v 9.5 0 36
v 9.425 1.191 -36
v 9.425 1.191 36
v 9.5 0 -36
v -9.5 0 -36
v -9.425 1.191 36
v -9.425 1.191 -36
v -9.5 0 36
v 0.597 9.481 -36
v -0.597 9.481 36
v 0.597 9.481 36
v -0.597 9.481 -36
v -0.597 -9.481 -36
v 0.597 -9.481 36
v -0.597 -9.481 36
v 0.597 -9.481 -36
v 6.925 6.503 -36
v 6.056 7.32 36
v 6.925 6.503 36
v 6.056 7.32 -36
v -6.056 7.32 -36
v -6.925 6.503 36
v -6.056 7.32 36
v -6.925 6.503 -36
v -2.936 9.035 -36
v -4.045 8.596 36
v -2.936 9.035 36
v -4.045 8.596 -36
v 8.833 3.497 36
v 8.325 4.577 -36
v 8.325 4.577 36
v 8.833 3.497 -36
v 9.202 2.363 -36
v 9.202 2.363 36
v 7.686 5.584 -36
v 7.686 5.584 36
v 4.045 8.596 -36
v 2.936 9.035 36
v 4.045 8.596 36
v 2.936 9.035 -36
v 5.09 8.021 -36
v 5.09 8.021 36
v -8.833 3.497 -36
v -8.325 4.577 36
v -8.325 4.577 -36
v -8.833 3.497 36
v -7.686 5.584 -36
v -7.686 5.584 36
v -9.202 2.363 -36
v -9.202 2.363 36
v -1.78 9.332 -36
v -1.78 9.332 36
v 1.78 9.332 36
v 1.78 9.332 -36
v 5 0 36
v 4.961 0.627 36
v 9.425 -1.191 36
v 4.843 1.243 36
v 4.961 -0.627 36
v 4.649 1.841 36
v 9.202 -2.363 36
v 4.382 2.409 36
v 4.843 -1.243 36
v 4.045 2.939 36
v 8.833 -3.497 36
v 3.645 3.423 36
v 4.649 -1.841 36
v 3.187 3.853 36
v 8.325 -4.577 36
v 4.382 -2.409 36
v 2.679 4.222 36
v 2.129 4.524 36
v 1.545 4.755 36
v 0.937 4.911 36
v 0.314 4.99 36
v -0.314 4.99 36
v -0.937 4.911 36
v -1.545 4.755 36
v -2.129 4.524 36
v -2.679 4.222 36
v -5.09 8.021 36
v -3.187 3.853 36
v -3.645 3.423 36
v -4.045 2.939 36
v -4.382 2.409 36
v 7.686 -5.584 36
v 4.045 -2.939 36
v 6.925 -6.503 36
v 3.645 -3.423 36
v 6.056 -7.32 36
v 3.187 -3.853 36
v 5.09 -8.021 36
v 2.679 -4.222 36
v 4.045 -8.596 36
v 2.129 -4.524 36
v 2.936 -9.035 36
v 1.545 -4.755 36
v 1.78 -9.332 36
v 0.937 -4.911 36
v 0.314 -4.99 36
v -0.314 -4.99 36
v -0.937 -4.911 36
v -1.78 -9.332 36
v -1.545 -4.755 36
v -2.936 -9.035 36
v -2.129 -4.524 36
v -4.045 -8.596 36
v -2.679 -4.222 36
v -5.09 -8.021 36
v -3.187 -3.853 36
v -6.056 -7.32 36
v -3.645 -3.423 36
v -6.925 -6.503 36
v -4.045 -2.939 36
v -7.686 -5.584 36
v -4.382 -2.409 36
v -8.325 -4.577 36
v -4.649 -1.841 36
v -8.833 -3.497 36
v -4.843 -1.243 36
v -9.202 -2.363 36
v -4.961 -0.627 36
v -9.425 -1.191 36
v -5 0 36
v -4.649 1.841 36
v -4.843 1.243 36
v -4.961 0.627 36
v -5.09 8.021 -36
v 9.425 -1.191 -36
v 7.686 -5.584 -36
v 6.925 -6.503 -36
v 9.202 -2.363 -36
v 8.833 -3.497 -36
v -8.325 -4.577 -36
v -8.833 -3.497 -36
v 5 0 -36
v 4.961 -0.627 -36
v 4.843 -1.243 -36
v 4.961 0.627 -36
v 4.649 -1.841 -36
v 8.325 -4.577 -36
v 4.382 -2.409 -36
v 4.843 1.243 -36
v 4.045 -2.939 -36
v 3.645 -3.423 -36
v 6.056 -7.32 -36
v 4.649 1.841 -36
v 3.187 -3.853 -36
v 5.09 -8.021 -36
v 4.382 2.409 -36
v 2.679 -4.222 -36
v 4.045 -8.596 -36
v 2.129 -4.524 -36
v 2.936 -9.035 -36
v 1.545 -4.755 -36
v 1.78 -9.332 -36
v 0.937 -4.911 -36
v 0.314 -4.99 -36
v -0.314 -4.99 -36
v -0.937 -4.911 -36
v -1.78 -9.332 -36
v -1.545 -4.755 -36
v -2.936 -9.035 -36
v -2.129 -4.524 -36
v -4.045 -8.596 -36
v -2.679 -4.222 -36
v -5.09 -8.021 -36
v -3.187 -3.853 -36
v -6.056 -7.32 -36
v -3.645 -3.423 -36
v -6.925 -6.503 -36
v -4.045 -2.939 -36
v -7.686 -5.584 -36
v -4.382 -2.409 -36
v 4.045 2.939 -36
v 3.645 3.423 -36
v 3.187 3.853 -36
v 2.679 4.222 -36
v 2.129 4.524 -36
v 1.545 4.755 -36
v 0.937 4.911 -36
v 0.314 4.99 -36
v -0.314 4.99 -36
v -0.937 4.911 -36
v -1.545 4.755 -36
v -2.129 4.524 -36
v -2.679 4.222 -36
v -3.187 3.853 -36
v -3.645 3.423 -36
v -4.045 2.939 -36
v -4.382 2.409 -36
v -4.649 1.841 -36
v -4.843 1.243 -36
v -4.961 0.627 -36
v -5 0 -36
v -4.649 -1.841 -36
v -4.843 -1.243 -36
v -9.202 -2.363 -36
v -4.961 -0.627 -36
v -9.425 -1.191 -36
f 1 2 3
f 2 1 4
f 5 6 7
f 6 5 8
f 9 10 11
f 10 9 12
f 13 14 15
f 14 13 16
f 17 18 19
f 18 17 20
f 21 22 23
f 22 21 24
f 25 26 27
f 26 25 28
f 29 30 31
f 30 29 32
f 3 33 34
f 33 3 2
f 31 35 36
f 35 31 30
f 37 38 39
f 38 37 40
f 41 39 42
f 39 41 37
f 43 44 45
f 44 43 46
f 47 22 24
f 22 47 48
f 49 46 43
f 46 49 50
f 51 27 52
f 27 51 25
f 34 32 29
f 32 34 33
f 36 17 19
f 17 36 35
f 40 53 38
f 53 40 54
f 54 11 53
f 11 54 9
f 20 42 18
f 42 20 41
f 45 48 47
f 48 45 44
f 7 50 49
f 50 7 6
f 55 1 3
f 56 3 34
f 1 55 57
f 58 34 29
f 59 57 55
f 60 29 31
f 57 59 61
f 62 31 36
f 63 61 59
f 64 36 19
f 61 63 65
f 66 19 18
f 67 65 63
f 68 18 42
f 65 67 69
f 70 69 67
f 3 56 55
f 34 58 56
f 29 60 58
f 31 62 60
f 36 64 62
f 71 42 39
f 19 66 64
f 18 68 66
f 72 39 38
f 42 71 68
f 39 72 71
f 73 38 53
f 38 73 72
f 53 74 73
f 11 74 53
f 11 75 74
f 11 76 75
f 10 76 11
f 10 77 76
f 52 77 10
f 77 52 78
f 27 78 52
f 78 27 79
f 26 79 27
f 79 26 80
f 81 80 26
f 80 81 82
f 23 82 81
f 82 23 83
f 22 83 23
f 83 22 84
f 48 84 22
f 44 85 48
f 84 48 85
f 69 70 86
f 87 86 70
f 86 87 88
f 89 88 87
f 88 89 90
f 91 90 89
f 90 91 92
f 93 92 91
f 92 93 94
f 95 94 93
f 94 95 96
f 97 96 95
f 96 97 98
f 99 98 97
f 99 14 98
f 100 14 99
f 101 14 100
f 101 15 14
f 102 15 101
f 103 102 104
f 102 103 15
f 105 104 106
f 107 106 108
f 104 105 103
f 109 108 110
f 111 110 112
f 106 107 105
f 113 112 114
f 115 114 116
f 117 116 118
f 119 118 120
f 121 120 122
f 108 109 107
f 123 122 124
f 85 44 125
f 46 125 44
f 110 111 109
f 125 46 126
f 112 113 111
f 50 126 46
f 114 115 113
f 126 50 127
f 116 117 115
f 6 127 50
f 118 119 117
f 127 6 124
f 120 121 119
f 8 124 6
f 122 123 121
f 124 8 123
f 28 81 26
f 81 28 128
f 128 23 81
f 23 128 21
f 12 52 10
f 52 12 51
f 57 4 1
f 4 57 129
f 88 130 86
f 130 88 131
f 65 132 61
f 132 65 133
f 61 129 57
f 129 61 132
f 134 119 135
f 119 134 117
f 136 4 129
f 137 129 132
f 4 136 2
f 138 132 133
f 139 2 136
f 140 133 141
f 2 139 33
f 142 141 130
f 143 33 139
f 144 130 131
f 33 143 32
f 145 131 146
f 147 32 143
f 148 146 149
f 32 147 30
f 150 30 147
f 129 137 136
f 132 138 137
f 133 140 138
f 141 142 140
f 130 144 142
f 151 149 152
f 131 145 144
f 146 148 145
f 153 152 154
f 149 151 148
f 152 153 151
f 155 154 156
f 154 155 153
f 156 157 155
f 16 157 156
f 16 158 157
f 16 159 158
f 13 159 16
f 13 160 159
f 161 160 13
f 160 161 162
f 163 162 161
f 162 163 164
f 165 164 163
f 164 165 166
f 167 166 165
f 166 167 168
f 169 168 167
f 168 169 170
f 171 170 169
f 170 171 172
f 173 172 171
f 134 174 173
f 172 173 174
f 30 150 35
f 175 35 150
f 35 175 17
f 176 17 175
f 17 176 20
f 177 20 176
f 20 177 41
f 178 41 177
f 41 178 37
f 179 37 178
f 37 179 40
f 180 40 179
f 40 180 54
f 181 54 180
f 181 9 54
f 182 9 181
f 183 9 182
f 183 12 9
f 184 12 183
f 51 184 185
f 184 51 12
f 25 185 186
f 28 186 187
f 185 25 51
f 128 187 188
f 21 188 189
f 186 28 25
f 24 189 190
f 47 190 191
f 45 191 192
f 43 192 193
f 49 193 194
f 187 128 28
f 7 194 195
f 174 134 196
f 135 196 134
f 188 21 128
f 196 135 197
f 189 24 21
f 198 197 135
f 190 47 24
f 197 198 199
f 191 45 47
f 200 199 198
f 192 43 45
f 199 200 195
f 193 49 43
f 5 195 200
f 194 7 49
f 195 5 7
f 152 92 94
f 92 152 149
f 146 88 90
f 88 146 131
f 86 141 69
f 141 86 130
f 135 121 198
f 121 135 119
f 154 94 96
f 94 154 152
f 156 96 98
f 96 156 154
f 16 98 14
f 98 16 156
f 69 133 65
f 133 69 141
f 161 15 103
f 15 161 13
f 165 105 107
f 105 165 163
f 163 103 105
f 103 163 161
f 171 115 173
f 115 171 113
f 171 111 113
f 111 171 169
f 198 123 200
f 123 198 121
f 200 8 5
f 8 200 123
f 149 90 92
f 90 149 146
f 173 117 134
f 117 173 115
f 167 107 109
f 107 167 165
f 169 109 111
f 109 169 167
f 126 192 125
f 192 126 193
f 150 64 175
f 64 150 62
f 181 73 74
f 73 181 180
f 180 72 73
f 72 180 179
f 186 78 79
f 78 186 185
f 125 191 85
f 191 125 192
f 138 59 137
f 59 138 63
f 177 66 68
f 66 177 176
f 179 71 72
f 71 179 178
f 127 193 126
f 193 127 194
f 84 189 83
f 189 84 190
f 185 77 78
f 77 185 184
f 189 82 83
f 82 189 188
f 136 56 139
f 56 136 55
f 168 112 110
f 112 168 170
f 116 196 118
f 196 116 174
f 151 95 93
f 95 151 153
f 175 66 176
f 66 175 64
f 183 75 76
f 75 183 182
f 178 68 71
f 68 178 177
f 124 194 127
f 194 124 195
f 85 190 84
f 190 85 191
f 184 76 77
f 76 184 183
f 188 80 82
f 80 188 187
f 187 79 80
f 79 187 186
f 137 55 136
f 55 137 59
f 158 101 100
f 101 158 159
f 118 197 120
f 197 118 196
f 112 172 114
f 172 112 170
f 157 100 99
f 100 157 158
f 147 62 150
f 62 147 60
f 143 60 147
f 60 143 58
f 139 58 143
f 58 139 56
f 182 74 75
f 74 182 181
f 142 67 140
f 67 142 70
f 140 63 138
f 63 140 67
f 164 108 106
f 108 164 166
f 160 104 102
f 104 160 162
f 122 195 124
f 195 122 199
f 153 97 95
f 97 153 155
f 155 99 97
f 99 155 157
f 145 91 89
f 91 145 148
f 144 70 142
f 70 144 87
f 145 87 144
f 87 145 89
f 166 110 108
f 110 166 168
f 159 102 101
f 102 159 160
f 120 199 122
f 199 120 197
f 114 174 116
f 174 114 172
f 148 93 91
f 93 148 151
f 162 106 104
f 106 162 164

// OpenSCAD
$fn = 50;


difference() {
	union() {
		translate(v = [0, 0, -36.0000000000]) {
			cylinder(h = 72, r = 9.5000000000);
		}
	}
	union() {
		translate(v = [0, 0, -100.0000000000]) {
			cylinder(h = 200, r = 5.0000000000);
		}
	}
}
